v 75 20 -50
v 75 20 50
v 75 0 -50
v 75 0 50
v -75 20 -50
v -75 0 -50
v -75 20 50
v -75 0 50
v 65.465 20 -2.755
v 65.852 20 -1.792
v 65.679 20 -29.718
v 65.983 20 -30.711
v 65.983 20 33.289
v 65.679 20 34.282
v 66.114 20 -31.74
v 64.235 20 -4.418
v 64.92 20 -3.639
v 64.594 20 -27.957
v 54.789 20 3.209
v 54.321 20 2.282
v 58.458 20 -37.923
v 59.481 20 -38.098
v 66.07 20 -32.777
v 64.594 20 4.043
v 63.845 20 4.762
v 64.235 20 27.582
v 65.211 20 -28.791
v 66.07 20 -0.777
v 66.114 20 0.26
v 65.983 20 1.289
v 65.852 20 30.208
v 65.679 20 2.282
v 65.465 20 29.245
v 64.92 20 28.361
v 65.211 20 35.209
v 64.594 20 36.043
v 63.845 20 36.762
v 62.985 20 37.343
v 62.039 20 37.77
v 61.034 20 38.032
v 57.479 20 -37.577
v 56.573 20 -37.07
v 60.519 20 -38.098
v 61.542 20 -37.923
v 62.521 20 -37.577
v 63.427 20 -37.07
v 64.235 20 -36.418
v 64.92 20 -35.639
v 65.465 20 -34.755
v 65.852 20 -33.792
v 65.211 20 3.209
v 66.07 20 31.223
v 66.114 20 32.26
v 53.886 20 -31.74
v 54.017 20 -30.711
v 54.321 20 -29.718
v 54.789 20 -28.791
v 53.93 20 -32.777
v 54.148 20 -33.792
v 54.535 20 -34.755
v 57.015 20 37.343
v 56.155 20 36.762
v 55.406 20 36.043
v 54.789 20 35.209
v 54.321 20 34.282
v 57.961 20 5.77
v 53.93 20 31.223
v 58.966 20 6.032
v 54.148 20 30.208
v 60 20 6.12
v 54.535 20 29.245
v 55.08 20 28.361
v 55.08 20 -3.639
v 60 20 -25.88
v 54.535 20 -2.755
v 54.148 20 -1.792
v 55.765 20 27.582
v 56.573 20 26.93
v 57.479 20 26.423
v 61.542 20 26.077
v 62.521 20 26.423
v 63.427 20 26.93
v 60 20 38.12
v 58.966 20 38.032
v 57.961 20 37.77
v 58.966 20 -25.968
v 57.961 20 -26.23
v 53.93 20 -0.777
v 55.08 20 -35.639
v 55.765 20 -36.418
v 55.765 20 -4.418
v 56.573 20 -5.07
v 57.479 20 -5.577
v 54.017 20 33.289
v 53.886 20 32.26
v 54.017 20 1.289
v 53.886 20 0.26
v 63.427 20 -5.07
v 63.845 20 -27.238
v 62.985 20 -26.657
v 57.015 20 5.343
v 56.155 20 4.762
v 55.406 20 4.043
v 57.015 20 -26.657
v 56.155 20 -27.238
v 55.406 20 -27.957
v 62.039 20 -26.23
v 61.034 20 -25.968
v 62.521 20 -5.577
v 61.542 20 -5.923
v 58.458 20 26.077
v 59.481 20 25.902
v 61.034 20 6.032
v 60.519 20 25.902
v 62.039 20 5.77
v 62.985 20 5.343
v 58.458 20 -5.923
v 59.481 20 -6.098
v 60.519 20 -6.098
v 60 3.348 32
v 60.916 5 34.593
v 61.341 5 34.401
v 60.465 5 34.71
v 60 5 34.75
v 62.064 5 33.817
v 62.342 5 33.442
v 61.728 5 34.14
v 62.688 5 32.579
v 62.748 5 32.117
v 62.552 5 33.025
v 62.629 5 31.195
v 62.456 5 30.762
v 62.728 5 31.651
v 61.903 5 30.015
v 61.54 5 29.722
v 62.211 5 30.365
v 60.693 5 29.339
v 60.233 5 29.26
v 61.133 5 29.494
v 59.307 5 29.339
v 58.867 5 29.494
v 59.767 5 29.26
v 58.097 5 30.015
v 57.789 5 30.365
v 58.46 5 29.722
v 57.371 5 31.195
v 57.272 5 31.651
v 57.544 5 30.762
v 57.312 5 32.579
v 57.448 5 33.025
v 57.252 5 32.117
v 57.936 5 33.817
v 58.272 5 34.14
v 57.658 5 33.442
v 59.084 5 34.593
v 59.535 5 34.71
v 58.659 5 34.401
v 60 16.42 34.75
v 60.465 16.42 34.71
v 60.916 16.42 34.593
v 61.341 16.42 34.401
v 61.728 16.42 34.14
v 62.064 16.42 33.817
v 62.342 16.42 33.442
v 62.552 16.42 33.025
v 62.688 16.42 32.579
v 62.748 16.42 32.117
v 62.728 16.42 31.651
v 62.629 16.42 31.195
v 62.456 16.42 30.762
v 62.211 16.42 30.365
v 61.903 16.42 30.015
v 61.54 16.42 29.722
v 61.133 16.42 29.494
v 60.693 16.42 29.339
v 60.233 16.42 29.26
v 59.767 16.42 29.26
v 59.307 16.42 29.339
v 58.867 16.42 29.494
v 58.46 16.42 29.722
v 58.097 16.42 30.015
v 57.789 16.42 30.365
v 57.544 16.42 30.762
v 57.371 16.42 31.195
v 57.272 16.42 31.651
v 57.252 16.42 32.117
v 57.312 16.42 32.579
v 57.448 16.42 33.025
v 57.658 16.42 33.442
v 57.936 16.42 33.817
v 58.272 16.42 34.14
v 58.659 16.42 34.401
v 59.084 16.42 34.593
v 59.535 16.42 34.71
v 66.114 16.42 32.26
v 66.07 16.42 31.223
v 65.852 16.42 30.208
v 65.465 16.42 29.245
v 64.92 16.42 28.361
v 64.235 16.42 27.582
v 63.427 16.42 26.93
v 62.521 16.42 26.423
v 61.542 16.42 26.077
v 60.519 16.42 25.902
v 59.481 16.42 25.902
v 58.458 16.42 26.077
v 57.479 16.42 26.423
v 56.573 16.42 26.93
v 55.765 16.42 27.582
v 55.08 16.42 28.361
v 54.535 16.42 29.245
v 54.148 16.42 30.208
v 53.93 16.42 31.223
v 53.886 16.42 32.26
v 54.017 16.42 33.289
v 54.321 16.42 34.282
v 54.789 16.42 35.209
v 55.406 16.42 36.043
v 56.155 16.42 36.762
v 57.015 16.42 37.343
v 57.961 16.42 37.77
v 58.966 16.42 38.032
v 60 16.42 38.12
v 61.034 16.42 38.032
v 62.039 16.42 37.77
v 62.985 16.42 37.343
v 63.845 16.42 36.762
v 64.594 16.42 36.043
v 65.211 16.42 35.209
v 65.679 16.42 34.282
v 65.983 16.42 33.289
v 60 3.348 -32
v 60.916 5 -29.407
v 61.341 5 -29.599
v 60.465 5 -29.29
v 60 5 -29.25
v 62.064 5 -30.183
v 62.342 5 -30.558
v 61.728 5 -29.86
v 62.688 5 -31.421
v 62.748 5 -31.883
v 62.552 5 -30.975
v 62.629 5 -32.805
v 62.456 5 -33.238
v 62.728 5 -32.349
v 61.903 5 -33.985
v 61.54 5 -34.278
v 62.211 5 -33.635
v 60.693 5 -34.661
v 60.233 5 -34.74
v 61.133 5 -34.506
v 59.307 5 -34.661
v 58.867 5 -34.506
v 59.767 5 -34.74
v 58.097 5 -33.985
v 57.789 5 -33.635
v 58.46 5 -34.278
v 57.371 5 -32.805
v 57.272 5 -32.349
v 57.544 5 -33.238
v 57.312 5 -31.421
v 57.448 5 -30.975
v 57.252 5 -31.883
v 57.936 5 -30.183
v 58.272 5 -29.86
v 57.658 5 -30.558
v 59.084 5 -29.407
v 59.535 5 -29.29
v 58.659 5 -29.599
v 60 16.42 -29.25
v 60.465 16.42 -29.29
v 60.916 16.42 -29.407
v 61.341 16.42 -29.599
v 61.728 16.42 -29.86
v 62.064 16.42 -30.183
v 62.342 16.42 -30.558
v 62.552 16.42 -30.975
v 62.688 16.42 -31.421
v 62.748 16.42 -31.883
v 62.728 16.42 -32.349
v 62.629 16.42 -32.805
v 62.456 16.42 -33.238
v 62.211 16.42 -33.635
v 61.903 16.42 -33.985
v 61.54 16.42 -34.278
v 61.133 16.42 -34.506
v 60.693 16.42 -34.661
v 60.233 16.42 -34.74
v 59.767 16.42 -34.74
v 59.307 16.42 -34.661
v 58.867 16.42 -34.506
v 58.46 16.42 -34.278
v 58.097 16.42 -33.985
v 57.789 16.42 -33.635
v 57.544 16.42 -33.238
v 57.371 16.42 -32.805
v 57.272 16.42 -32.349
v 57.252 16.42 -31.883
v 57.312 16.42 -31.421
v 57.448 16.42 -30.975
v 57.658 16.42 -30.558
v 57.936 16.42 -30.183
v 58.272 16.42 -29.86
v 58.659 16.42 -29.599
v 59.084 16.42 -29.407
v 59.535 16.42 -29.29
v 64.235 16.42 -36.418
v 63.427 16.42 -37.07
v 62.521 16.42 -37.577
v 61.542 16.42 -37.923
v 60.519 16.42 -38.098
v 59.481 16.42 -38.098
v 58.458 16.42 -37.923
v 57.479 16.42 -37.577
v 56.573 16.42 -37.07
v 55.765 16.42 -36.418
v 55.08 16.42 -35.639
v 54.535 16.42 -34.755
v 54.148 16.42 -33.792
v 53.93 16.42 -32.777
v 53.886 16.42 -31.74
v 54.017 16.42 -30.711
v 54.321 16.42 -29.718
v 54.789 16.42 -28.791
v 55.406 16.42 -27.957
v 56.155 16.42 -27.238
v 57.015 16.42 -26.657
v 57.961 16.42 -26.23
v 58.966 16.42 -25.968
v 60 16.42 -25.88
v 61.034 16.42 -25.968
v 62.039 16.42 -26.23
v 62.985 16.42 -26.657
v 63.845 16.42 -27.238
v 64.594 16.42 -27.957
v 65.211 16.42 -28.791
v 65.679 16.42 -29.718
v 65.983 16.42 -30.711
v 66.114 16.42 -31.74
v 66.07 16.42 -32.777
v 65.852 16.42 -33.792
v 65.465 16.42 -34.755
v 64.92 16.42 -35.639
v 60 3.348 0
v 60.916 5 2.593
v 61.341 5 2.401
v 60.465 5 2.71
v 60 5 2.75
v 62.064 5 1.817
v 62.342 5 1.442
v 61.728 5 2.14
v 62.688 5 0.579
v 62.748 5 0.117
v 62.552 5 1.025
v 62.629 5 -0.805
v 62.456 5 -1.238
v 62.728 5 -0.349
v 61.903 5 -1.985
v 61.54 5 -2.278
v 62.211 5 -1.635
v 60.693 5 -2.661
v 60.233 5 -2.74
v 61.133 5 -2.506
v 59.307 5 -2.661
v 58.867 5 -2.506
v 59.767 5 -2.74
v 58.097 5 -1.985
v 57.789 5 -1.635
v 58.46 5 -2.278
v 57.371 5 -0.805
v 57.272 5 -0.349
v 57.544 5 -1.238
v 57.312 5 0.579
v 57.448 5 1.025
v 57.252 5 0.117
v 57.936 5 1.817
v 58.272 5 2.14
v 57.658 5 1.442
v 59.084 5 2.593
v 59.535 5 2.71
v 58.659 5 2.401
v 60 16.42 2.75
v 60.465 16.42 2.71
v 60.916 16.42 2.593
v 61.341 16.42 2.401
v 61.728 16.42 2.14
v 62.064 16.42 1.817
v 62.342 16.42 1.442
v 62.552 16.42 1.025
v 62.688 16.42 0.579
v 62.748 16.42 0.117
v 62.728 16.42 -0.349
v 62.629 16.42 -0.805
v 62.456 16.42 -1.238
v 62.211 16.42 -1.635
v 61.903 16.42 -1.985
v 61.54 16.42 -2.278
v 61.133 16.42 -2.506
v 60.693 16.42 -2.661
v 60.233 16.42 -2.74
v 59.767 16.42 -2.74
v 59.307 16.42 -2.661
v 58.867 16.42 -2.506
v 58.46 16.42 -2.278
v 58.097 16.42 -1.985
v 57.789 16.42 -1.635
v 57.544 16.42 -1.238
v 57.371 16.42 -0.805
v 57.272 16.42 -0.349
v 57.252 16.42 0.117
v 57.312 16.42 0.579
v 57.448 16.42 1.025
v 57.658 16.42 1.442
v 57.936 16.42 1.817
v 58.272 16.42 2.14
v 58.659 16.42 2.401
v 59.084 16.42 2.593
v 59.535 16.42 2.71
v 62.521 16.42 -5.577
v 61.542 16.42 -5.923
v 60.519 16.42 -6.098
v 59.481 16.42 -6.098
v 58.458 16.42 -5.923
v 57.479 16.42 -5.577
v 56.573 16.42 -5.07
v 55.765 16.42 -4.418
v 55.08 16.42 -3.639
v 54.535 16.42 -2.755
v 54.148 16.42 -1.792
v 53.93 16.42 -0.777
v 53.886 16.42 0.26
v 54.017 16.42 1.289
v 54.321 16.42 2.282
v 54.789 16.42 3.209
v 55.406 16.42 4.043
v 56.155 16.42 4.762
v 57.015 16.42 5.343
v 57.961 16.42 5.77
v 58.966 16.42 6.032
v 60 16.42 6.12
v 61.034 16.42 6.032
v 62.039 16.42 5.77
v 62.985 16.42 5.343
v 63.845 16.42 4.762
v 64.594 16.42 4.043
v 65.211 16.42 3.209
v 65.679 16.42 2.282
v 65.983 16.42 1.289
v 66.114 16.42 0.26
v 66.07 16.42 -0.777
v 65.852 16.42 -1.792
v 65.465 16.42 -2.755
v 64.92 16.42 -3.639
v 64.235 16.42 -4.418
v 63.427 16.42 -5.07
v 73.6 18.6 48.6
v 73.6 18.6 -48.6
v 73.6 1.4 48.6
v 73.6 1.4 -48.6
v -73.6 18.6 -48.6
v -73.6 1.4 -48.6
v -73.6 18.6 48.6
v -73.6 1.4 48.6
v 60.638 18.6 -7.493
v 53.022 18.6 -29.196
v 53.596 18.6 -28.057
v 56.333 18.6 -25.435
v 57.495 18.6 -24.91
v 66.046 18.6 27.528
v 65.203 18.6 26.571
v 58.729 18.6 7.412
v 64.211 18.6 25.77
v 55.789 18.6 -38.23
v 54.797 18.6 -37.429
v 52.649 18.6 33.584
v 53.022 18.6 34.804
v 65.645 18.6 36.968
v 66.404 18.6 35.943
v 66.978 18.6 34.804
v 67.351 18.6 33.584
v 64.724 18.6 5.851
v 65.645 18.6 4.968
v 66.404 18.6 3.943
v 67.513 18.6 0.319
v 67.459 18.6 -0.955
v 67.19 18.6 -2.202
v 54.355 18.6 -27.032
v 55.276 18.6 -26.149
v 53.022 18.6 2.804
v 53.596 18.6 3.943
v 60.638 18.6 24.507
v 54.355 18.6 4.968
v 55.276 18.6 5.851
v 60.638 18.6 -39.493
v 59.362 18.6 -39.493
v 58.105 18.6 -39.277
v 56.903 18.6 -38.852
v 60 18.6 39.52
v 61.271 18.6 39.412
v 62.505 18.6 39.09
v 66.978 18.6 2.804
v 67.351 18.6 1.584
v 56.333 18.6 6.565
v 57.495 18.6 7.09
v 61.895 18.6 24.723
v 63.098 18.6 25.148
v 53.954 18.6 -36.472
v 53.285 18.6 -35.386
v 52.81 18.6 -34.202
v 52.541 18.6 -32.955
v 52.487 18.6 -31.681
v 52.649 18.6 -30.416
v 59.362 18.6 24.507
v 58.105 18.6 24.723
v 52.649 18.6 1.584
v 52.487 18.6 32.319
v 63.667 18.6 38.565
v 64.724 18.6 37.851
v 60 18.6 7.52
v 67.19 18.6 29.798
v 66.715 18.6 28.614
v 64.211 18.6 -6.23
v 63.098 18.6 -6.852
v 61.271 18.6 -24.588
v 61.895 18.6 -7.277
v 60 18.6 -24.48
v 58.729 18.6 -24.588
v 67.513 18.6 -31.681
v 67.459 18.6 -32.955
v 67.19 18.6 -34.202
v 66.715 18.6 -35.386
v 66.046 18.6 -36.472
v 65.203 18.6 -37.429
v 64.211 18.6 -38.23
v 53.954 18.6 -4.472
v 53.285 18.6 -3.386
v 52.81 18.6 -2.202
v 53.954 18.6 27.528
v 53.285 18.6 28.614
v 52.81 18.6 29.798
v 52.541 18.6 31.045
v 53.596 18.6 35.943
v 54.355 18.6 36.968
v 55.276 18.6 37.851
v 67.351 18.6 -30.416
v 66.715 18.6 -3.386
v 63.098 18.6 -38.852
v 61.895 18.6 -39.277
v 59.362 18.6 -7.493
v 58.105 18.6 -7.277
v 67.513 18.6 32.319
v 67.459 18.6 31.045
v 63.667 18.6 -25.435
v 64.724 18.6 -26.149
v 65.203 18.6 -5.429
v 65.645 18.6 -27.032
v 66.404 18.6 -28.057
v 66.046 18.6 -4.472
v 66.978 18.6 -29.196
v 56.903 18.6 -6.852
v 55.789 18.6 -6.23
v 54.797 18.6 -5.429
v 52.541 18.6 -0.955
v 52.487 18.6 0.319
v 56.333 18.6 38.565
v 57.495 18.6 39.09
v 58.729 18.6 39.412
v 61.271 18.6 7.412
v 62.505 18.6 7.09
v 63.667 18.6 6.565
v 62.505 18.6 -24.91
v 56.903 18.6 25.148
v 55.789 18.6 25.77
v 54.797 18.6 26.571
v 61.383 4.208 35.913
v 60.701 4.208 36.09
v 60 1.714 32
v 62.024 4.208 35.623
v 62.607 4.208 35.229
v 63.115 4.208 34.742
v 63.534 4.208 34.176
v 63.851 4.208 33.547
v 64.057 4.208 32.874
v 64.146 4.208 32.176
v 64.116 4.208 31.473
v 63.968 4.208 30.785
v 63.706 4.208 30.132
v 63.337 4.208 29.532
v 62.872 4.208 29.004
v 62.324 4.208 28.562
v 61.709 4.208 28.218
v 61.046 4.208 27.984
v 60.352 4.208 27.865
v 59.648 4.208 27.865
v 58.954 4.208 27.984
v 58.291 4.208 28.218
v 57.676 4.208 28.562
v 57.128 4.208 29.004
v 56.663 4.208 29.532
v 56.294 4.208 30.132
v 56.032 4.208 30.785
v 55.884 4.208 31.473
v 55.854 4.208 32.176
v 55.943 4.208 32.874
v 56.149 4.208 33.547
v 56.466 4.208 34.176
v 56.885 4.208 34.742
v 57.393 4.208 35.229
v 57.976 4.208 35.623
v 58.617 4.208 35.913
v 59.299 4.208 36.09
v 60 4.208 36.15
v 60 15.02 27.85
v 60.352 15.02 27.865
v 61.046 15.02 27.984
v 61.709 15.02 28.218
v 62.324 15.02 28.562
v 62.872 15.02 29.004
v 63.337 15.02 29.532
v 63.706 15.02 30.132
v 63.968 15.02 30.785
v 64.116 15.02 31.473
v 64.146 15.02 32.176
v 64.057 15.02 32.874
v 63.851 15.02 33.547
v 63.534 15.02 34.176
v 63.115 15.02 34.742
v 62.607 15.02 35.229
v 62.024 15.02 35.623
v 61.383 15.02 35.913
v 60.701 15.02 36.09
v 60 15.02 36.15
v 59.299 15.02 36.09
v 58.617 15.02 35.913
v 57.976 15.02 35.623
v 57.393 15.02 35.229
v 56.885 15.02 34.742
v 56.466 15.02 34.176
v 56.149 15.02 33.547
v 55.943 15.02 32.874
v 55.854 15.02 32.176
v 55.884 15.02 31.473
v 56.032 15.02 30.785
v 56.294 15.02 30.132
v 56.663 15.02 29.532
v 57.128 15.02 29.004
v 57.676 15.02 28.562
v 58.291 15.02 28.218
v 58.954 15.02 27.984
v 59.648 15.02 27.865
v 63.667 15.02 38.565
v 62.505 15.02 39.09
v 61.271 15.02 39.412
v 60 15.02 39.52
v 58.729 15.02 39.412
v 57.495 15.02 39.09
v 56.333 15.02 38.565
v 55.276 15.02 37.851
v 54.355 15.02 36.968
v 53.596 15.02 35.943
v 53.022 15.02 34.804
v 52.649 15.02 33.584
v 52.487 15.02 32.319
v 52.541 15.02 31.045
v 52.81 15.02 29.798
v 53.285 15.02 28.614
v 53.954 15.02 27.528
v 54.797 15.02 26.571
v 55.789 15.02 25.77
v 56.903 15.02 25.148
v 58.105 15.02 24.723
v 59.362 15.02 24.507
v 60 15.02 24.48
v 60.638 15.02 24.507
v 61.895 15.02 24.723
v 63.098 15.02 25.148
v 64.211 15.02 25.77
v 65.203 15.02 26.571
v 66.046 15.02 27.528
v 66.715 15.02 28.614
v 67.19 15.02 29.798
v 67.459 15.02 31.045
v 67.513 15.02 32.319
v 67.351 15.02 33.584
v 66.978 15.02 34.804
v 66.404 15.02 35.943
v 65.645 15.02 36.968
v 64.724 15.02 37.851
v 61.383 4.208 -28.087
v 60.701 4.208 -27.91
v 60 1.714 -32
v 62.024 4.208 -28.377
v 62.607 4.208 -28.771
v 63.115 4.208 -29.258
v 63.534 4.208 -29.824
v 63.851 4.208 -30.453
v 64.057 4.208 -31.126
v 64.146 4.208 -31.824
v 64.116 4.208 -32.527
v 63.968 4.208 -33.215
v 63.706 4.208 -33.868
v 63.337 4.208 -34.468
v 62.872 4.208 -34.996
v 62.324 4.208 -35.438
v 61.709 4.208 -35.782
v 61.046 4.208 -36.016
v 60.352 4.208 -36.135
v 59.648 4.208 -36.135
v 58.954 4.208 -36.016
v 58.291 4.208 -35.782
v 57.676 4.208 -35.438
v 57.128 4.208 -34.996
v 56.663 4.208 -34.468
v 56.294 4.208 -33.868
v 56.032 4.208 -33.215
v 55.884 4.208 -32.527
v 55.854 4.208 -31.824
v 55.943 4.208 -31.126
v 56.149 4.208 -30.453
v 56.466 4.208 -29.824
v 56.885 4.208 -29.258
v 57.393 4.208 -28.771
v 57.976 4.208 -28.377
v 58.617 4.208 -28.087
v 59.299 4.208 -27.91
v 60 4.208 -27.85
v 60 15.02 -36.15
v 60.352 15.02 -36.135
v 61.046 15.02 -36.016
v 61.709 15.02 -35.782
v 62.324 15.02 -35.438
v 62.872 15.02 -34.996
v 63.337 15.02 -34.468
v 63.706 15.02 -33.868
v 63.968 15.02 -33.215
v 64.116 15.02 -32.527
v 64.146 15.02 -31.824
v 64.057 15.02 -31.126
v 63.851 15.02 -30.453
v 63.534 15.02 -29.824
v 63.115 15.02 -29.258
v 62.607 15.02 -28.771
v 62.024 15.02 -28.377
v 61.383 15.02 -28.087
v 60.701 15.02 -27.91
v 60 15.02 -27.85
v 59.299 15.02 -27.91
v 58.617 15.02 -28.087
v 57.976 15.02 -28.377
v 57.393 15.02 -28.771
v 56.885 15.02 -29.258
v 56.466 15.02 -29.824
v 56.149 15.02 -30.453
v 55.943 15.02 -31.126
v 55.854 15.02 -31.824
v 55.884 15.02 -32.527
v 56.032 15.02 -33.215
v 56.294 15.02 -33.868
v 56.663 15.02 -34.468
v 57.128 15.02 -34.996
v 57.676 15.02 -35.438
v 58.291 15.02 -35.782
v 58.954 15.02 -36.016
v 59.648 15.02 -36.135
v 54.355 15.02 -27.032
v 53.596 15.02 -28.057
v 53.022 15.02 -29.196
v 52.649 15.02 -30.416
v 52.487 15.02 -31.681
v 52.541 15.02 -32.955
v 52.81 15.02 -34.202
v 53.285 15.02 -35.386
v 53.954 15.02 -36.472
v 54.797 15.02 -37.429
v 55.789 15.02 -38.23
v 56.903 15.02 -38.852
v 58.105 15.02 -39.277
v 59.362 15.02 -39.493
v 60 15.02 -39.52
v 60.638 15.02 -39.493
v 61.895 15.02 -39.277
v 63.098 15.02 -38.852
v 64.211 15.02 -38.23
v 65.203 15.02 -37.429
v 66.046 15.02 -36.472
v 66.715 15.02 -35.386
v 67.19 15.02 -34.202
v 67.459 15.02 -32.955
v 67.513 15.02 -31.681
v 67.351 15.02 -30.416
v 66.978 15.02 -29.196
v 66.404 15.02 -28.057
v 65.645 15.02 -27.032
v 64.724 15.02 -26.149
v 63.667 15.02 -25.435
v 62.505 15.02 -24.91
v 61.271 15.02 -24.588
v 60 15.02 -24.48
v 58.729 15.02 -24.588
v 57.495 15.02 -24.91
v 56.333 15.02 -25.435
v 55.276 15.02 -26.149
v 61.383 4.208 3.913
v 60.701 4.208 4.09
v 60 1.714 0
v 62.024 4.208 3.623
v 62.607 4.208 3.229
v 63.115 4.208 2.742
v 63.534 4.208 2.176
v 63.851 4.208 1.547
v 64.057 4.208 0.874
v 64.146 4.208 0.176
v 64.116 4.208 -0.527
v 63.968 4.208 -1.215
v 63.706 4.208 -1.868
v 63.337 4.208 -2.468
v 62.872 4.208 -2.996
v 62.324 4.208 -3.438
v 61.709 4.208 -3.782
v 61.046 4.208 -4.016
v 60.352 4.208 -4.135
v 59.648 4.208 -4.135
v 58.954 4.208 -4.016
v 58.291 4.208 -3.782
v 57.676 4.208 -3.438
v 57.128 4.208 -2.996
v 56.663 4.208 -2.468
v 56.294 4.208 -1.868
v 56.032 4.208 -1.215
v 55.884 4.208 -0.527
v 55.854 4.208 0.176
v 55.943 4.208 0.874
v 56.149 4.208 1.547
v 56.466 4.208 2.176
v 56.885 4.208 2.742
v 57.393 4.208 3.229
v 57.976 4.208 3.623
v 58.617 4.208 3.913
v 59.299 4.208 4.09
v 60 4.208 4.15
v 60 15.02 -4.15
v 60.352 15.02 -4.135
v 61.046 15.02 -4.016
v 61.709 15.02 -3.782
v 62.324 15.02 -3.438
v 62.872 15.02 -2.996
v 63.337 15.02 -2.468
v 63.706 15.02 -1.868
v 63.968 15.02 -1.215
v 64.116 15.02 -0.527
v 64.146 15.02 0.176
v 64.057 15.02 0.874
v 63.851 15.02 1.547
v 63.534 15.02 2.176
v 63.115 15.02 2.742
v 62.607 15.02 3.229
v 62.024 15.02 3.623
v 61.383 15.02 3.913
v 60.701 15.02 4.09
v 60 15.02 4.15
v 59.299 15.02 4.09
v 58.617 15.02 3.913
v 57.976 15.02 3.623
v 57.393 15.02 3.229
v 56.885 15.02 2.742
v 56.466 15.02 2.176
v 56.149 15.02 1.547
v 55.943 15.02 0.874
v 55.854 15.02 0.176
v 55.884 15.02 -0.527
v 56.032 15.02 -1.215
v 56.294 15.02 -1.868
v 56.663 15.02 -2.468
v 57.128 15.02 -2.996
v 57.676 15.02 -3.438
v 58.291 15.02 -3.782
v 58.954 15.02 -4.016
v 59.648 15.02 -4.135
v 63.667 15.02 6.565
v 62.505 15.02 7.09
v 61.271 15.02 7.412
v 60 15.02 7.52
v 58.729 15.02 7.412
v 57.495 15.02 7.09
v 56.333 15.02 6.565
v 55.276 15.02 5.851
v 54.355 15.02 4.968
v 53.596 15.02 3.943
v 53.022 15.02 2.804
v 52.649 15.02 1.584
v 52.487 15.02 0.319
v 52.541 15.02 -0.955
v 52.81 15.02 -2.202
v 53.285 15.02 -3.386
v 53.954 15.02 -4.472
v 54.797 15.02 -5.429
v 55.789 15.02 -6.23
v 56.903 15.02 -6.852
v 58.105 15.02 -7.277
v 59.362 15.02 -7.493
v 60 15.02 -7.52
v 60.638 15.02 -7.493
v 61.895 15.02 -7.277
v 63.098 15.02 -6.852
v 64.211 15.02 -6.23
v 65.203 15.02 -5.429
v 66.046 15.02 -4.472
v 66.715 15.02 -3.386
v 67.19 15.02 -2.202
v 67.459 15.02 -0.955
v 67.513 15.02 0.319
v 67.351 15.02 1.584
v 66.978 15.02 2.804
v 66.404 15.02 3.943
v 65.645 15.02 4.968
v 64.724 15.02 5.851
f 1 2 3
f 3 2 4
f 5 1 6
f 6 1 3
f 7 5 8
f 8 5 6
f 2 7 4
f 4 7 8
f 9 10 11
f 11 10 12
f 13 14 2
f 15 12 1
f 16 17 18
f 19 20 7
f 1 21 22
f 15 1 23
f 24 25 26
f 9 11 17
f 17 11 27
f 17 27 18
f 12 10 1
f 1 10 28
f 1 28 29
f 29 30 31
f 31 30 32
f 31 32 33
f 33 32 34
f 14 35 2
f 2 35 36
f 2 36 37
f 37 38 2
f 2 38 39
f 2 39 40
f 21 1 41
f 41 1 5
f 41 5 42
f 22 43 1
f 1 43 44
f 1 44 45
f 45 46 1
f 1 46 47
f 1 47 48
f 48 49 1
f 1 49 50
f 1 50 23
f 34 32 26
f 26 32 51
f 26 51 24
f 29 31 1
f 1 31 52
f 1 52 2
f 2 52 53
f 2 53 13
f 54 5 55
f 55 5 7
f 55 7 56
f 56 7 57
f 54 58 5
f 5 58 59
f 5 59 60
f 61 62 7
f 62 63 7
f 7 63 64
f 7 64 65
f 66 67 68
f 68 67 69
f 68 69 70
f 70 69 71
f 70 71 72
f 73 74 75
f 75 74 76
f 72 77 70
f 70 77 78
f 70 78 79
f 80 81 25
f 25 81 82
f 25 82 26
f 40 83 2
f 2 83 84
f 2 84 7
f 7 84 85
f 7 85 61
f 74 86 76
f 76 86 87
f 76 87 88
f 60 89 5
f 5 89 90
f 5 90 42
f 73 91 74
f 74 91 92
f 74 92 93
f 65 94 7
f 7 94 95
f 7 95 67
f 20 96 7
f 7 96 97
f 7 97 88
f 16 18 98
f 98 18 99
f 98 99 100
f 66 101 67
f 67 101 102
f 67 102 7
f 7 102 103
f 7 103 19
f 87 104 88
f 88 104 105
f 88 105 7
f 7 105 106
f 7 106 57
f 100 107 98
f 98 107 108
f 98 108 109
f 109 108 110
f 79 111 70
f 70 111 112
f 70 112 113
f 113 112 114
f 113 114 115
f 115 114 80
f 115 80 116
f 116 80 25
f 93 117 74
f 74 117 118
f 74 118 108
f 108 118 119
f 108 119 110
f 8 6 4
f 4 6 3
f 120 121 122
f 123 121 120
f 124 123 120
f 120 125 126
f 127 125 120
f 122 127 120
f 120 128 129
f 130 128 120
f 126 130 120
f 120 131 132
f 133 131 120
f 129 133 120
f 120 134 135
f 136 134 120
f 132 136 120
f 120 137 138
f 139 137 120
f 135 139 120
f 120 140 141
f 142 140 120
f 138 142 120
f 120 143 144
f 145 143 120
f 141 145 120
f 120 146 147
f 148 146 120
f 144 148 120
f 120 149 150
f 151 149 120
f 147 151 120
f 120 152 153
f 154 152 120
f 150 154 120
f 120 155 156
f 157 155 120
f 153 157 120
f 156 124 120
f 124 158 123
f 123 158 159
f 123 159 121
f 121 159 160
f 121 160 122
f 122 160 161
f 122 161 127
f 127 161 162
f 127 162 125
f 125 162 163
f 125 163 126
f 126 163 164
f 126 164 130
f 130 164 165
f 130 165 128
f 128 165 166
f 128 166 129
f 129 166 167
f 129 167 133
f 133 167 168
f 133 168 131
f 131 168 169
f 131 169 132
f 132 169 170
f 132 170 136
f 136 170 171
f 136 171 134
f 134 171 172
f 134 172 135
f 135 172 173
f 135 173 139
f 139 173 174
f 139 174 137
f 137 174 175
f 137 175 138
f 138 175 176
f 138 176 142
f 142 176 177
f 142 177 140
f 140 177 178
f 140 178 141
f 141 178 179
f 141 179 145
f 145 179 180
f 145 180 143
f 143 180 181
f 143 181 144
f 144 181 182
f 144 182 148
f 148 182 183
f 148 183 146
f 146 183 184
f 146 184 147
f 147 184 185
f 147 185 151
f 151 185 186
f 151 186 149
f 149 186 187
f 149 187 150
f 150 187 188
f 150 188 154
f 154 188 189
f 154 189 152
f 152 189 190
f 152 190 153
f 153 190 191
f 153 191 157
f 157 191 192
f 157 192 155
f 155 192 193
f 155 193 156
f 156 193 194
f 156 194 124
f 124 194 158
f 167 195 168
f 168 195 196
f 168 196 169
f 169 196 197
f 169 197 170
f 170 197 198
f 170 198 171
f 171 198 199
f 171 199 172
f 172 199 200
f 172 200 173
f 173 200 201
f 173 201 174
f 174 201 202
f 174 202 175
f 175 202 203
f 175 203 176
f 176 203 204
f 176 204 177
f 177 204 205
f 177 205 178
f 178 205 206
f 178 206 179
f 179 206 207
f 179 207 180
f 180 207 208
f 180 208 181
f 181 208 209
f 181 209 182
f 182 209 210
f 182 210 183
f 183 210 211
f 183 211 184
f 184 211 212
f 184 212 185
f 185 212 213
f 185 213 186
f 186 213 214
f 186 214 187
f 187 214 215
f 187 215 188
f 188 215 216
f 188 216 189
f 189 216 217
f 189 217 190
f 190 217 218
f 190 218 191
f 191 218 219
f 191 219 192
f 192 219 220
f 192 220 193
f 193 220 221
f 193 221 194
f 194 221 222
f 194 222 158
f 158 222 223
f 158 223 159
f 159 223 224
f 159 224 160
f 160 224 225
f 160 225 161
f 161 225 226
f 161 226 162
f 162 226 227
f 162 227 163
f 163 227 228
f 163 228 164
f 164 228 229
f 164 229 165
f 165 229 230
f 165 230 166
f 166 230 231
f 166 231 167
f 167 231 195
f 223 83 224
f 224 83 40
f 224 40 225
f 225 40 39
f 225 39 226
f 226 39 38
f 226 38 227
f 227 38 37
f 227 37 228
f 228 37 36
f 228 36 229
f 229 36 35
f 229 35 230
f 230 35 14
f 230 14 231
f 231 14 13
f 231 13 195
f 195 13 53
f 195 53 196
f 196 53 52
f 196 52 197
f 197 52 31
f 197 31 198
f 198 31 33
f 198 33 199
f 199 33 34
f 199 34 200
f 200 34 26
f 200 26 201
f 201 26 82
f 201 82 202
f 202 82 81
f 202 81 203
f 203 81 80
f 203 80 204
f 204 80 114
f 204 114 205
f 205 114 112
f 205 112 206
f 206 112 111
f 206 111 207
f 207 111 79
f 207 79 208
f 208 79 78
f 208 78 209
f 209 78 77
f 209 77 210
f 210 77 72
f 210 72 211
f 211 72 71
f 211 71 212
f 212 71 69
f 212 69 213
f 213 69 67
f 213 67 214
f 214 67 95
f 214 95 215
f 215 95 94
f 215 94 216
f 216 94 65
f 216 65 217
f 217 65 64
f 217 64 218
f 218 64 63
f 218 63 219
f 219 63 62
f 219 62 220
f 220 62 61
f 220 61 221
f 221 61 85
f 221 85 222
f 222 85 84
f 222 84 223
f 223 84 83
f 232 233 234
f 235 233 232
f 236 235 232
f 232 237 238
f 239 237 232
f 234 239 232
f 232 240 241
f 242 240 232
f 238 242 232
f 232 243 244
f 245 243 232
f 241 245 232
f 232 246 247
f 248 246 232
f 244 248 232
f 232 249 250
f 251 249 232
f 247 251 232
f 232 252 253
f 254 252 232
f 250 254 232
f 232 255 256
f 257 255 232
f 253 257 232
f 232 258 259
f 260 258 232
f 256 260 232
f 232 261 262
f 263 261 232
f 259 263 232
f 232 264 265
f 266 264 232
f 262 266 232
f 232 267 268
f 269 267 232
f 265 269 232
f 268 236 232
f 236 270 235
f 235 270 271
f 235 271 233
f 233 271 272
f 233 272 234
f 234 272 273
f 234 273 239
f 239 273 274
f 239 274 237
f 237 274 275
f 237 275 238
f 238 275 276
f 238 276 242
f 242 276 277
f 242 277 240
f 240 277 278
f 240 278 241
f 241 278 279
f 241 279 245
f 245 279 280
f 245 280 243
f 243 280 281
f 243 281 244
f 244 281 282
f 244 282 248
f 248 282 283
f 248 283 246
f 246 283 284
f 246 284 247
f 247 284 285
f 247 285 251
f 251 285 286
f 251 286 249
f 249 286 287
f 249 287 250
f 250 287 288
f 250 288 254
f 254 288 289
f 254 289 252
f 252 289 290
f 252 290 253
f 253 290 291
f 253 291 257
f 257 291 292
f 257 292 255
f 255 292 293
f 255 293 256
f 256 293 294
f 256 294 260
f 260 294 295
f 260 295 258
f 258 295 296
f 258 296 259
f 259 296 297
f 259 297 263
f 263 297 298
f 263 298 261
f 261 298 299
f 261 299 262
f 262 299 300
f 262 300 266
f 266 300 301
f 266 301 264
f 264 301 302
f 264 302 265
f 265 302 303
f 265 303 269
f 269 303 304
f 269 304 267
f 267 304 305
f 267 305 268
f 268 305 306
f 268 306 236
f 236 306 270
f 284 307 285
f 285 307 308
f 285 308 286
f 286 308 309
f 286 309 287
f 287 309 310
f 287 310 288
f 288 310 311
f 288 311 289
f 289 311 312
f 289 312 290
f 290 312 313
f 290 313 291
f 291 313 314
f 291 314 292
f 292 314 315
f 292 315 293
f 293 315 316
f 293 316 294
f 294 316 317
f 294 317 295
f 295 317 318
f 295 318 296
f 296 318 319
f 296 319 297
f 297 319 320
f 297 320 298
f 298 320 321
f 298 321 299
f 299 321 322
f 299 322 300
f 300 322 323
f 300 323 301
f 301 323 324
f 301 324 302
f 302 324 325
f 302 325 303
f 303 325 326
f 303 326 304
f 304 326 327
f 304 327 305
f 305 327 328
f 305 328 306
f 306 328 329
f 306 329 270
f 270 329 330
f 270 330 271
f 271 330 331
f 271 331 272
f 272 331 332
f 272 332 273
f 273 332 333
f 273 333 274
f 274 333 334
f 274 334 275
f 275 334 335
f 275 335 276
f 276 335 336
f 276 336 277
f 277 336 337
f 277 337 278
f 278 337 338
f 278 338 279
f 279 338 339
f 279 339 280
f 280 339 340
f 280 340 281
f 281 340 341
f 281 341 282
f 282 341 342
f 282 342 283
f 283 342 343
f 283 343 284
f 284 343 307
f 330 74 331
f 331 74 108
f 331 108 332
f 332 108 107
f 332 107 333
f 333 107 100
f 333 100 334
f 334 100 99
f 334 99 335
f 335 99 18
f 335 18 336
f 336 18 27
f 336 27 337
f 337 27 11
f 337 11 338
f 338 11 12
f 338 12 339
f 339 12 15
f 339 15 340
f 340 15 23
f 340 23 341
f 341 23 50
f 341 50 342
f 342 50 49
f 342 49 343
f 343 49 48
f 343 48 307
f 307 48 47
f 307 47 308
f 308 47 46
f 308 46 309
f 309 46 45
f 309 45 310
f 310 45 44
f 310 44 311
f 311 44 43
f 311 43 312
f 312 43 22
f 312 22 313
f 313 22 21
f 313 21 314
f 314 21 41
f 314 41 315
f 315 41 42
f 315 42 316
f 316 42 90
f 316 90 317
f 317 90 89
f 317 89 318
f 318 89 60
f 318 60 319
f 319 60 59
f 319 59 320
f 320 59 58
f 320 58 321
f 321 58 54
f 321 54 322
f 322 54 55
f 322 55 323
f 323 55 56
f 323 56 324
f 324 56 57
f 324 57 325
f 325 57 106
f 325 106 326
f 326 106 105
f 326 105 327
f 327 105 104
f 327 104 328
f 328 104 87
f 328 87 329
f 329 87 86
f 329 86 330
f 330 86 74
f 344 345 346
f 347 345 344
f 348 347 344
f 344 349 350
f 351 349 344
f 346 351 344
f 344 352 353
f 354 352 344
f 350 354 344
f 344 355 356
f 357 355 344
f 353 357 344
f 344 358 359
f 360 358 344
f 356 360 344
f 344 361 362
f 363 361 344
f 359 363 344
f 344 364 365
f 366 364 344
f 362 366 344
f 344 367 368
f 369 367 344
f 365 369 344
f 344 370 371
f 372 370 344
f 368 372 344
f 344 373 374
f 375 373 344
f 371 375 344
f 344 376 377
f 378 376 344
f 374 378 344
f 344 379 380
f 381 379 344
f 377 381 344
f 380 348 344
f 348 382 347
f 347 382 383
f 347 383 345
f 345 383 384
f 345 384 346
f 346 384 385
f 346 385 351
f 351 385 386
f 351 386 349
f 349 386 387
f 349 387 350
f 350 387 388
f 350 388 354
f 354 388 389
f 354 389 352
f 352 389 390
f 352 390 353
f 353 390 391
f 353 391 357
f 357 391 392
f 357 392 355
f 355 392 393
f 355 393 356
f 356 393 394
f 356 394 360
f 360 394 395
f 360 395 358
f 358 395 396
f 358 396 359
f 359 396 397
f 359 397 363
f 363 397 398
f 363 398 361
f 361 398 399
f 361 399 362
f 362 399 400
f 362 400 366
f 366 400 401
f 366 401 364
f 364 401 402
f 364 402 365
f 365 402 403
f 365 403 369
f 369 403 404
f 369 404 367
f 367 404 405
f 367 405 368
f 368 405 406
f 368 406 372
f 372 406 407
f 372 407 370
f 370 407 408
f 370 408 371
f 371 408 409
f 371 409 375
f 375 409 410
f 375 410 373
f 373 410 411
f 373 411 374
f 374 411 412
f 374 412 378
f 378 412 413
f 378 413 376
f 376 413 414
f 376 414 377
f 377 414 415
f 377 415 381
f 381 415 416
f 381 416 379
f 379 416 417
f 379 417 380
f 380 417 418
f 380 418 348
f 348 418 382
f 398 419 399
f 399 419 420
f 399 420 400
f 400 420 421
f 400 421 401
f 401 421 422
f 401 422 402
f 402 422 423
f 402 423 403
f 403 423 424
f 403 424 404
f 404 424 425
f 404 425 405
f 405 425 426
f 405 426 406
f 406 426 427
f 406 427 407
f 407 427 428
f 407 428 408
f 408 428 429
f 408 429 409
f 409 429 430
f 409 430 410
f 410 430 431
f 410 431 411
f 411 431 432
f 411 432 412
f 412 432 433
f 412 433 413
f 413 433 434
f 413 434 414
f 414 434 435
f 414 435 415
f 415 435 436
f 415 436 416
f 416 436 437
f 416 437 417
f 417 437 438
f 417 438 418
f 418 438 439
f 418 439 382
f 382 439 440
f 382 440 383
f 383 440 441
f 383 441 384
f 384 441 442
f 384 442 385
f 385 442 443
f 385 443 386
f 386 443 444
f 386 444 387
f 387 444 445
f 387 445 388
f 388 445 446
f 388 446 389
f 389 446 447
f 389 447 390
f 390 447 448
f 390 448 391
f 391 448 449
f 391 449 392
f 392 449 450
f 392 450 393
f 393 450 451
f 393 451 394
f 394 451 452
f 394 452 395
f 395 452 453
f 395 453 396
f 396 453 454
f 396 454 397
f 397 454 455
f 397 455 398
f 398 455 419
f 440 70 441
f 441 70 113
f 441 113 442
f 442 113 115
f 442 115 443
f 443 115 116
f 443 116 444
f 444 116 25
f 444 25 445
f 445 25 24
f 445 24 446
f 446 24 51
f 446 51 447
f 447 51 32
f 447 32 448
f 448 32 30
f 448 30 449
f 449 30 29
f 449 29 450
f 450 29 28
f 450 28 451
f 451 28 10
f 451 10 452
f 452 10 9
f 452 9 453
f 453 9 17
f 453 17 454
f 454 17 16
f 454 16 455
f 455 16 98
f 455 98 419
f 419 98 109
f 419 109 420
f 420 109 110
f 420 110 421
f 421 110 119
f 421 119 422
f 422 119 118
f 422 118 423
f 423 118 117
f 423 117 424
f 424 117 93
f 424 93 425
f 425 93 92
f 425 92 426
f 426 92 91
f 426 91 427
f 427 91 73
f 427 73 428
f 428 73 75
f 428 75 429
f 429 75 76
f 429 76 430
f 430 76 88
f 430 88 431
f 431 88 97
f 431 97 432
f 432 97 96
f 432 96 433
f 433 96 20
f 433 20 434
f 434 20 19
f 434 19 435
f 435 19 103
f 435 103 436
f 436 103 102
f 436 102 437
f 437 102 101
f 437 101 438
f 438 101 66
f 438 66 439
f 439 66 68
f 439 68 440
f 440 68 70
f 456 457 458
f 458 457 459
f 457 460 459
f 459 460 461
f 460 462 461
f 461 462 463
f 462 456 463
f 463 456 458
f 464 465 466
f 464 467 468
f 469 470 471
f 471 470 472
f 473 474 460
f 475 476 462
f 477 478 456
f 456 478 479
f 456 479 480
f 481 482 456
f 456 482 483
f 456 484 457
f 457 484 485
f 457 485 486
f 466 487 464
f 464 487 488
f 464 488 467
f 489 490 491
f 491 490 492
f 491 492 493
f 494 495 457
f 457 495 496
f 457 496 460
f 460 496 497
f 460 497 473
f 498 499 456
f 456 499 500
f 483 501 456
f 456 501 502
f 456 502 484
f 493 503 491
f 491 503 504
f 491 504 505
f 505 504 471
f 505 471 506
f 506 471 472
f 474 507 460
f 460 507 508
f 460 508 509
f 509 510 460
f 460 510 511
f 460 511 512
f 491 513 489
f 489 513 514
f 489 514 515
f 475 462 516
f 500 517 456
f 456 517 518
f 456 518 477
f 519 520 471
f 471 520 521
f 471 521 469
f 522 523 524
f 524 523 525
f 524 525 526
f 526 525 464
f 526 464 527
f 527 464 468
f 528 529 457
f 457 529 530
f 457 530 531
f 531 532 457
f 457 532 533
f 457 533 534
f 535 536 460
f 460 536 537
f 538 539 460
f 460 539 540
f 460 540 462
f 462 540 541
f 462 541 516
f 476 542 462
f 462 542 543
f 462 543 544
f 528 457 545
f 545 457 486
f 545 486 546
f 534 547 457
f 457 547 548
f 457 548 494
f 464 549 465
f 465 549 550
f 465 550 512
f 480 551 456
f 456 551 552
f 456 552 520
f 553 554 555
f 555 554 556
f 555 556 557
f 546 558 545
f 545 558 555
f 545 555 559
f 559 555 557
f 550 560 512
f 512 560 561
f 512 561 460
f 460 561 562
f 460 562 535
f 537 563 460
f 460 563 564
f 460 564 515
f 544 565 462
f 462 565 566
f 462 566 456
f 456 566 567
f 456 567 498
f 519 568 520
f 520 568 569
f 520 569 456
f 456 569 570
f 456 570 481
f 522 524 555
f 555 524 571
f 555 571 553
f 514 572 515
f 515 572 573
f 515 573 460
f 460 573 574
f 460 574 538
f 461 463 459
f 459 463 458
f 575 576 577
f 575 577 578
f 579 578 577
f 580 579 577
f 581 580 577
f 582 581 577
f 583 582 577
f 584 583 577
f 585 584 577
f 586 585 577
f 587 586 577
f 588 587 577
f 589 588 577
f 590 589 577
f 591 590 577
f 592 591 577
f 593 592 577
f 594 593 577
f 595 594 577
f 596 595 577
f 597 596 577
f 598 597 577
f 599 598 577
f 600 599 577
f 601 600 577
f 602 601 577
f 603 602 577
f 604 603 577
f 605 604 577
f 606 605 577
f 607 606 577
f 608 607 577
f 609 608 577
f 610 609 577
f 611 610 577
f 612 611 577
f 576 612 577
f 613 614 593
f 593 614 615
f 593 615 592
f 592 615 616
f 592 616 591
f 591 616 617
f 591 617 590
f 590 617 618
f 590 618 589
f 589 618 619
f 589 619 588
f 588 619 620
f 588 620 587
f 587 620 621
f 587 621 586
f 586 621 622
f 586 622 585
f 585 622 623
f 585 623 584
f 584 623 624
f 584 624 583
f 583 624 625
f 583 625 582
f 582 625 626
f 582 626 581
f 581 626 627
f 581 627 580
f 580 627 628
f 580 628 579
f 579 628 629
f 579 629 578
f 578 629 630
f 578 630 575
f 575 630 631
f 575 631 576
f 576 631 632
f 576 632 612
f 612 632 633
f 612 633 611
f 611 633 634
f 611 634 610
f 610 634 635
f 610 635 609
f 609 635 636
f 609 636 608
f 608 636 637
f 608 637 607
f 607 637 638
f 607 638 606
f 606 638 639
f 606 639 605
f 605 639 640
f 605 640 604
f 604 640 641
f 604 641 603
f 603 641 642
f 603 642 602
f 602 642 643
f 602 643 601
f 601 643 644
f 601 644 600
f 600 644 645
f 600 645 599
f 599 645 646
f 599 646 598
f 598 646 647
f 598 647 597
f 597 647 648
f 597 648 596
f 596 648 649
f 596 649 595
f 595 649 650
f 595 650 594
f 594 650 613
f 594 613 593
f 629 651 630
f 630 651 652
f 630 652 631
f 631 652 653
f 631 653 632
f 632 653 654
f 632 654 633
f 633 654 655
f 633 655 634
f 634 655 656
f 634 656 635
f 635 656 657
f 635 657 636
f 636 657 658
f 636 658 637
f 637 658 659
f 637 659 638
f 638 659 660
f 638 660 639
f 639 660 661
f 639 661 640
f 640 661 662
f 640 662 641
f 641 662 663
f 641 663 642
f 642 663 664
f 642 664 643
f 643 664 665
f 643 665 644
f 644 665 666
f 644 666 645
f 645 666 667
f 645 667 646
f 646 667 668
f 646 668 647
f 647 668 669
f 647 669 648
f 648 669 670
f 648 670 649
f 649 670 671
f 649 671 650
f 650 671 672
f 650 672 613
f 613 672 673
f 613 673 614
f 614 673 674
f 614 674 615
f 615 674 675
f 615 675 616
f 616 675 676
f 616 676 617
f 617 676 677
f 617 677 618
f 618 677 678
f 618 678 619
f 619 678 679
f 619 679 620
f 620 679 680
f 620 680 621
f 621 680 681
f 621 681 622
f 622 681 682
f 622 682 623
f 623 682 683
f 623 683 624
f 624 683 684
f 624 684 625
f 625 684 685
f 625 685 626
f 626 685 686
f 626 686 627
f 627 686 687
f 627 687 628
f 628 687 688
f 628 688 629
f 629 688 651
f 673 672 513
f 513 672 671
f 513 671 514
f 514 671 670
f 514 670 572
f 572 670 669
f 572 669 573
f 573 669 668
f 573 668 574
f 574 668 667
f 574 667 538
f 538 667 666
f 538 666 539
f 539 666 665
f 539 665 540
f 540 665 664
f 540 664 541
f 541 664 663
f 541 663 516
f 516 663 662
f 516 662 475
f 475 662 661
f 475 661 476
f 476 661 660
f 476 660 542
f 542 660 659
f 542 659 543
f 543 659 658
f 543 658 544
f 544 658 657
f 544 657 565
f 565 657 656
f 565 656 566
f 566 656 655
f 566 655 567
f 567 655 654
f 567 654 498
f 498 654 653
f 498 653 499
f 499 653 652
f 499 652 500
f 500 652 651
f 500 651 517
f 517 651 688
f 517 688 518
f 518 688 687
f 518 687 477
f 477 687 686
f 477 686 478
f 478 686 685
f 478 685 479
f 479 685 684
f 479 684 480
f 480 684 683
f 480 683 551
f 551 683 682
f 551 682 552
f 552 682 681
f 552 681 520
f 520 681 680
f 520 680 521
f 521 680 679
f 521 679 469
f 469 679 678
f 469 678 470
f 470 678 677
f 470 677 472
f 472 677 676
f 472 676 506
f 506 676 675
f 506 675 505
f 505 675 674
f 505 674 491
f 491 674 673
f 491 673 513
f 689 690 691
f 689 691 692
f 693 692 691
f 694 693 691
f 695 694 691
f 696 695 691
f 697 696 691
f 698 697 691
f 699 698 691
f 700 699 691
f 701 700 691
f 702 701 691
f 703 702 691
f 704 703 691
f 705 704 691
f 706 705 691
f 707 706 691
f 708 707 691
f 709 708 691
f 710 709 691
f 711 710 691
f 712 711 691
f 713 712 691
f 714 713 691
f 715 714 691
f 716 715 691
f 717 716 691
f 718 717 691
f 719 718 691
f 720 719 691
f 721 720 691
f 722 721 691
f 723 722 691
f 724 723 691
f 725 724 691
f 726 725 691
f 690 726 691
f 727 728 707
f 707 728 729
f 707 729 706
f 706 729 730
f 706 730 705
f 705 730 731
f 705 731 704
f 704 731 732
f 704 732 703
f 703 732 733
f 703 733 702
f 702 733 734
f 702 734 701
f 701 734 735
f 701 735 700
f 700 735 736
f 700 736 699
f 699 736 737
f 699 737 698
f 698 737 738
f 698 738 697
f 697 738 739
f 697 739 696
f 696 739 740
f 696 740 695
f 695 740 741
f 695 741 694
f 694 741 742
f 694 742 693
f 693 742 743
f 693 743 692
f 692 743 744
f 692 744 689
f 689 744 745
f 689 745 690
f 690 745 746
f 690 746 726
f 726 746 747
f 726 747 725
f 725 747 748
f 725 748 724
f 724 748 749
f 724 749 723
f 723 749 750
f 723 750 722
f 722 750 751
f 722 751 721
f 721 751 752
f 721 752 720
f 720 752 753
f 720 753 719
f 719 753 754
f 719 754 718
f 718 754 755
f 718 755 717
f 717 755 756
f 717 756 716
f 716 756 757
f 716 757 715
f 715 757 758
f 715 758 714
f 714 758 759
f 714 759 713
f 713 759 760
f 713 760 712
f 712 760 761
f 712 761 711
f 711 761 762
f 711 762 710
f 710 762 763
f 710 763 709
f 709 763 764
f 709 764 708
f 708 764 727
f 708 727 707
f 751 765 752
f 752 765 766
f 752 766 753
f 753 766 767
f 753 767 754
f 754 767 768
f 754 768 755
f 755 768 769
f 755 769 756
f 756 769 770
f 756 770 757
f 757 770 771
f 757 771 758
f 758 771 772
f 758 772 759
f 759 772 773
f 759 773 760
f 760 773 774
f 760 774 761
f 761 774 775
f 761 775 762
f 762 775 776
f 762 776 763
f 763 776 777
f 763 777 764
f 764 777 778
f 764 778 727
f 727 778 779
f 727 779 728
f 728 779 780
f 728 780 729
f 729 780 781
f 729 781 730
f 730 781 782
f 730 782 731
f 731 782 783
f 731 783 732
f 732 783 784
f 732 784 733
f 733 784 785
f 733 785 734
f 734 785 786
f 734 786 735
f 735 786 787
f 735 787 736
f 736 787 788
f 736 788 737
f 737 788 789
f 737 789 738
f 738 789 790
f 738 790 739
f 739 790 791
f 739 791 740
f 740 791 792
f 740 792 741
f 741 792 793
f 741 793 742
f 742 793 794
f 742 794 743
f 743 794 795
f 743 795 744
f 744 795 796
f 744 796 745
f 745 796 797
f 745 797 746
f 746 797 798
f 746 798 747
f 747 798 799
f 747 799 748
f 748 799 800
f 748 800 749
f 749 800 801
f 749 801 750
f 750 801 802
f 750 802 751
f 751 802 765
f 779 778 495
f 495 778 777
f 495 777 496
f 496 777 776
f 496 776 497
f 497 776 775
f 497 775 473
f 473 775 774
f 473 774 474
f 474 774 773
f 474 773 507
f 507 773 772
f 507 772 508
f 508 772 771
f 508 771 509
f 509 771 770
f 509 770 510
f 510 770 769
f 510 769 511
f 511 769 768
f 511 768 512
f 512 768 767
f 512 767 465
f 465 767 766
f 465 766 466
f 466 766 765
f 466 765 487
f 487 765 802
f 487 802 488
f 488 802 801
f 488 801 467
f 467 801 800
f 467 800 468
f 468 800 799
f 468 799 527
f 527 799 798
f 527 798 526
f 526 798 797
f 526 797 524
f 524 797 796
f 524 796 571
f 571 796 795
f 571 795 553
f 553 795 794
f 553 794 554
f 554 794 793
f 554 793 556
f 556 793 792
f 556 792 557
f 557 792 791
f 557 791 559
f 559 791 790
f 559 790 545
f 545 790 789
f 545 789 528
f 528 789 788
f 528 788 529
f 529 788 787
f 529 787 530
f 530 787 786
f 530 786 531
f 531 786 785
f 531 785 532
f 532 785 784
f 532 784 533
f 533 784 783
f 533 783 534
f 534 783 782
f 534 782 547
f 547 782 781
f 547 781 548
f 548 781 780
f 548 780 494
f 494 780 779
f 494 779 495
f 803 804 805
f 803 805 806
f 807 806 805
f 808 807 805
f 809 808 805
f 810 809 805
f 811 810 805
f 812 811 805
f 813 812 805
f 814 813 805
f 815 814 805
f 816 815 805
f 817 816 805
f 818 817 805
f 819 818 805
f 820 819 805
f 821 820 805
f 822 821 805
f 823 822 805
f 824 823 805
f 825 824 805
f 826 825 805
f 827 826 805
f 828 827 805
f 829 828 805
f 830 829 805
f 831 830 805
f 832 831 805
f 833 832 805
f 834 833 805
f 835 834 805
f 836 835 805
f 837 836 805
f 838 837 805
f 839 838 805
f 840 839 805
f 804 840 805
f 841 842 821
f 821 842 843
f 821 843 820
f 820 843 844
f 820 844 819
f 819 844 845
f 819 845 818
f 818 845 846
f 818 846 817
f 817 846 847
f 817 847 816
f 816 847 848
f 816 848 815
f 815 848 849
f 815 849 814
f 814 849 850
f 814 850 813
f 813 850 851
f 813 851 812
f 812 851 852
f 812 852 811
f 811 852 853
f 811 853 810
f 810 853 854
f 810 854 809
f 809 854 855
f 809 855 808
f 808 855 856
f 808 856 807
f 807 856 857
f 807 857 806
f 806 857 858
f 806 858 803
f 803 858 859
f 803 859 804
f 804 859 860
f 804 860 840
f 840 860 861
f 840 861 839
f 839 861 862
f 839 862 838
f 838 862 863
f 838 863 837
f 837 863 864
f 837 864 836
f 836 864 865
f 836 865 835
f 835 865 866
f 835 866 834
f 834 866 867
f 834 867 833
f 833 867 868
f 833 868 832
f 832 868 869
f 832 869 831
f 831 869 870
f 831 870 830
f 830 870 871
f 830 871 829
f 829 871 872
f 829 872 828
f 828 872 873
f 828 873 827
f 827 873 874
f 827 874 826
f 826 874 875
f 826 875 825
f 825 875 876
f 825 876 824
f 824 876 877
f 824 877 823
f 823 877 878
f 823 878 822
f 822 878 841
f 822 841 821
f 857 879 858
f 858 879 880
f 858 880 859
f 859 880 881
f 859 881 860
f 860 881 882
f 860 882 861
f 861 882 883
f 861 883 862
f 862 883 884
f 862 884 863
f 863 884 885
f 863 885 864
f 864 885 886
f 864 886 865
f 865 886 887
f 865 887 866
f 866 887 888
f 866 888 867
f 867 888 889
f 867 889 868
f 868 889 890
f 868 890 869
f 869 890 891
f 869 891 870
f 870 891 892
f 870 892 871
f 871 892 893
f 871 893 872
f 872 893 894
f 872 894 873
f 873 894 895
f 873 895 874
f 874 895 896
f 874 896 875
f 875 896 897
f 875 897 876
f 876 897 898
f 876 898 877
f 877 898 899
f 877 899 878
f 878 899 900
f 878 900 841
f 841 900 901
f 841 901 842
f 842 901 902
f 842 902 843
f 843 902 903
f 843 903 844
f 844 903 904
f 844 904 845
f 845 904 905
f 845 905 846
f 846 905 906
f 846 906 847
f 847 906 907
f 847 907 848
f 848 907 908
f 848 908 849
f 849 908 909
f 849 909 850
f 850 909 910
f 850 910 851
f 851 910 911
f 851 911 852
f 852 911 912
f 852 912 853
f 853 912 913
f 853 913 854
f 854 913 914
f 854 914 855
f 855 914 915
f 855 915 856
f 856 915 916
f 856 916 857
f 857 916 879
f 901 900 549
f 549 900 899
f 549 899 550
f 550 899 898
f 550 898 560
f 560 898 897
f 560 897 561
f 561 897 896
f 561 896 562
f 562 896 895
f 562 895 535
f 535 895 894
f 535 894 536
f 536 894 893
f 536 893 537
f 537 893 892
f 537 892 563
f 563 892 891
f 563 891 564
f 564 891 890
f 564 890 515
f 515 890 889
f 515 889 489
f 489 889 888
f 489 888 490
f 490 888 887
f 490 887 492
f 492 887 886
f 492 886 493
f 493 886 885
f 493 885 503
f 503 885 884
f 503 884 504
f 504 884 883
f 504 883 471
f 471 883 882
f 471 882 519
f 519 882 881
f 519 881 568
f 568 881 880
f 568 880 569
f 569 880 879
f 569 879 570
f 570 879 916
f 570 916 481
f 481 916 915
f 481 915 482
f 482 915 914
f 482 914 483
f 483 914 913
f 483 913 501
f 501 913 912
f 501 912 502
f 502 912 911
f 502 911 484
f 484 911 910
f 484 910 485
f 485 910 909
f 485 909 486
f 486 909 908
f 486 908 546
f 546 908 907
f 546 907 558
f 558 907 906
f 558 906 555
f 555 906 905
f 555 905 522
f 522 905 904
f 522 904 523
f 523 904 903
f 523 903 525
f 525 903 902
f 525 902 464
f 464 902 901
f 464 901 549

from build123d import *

# Parameters (mm, degrees)
SKETCH1_W                               = 150
SKETCH1_H                               = 100
BOSS_EXTRUDE1_DEPTH                     = 20
CBORE_FOR_M5_HEX_HEAD_BOLT1_D           = 5.5
CBORE_FOR_M5_HEX_HEAD_BOLT1_DEPTH       = 15
CBORE_FOR_M5_HEX_HEAD_BOLT1_CBORE_D     = 12.24
CBORE_FOR_M5_HEX_HEAD_BOLT1_CBORE_DEPTH = 3.58
CBORE_FOR_M5_HEX_HEAD_BOLT1_TIP         = 1.652366702
SHELL1_START                            = 1.4
SHELL1_OUTLINE_W                        = 147.2
SHELL1_OUTLINE_H                        = 97.2
SHELL1_OUTLINE_R                        = 7.52
SHELL1_DEPTH                            = 17.2
SHELL1_2_OUTLINE_R                      = 7.52
SHELL1_2_OUTLINE_R_2                    = 4.15
SHELL1_2_DEPTH                          = 13.62
SHELL1_3_OUTLINE_R                      = 4.15
SHELL1_3_DEPTH                          = 0.314346442


with BuildPart() as part:
    # Sketch1 → Boss-Extrude1 (new body)
    with BuildSketch(Plane(origin=(0, 0, 0), x_dir=(1, 0, 0), z_dir=(0, 1, 0))):
        Rectangle(SKETCH1_W, SKETCH1_H)
    extrude(amount=BOSS_EXTRUDE1_DEPTH)

    # CBORE for M5 Hex Head Bolt1
    with Locations(Plane(origin=(0, 20, 0), x_dir=(1, 0, 0), z_dir=(0, 1, 0))):
        with Locations((60, 0), (60, 32), (60, -32)):
            CounterBoreHole(CBORE_FOR_M5_HEX_HEAD_BOLT1_D / 2, CBORE_FOR_M5_HEX_HEAD_BOLT1_CBORE_D / 2, CBORE_FOR_M5_HEX_HEAD_BOLT1_CBORE_DEPTH, depth=CBORE_FOR_M5_HEX_HEAD_BOLT1_DEPTH)
            with Locations((0, 0, -(CBORE_FOR_M5_HEX_HEAD_BOLT1_DEPTH + CBORE_FOR_M5_HEX_HEAD_BOLT1_TIP / 2))):  # 118° drill point
                Cone(0, CBORE_FOR_M5_HEX_HEAD_BOLT1_D / 2, CBORE_FOR_M5_HEX_HEAD_BOLT1_TIP, mode=Mode.SUBTRACT)

    # Shell1: read off the stored shape, not the designer's step
    # Shell1 outline → Shell1 (cut)
    with BuildSketch(Plane(origin=(0, 0, 0), x_dir=(1, 0, 0), z_dir=(0, 1, 0)).offset(SHELL1_START)):
        Rectangle(SHELL1_OUTLINE_W, SHELL1_OUTLINE_H)
        with Locations((60, -32)):
            Circle(SHELL1_OUTLINE_R, mode=Mode.SUBTRACT)
        with Locations((60, 0)):
            Circle(SHELL1_OUTLINE_R, mode=Mode.SUBTRACT)
        with Locations((60, 32)):
            Circle(SHELL1_OUTLINE_R, mode=Mode.SUBTRACT)
    extrude(amount=SHELL1_DEPTH, mode=Mode.SUBTRACT)

    # Shell1 2 outline → Shell1 2 (cut)
    # profile 1 of 3: a face of its own
    with BuildSketch(Plane(origin=(0, 0, 0), x_dir=(1, 0, 0), z_dir=(0, 1, 0)).offset(SHELL1_START)):
        with Locations((60, -32)):
            Circle(SHELL1_2_OUTLINE_R)
        with Locations((60, -32)):
            Circle(SHELL1_2_OUTLINE_R_2, mode=Mode.SUBTRACT)
    # profile 2 of 3: a face of its own
    with BuildSketch(Plane(origin=(0, 0, 0), x_dir=(1, 0, 0), z_dir=(0, 1, 0)).offset(SHELL1_START)):
        with Locations((60, 32)):
            Circle(SHELL1_2_OUTLINE_R)
        with Locations((60, 32)):
            Circle(SHELL1_2_OUTLINE_R_2, mode=Mode.SUBTRACT)
    # profile 3 of 3: a face of its own
    with BuildSketch(Plane(origin=(0, 0, 0), x_dir=(1, 0, 0), z_dir=(0, 1, 0)).offset(SHELL1_START)):
        with Locations((60, 0)):
            Circle(SHELL1_2_OUTLINE_R)
        with Locations((60, 0)):
            Circle(SHELL1_2_OUTLINE_R_2, mode=Mode.SUBTRACT)
    extrude(amount=SHELL1_2_DEPTH, mode=Mode.SUBTRACT)

    # Shell1 3 outline → Shell1 3 (cut)
    with BuildSketch(Plane(origin=(0, 0, 0), x_dir=(1, 0, 0), z_dir=(0, 1, 0)).offset(SHELL1_START)):
        with Locations((60, -32)):
            Circle(SHELL1_3_OUTLINE_R)
        with Locations((60, 32)):
            Circle(SHELL1_3_OUTLINE_R)
        with Locations((60, 0)):
            Circle(SHELL1_3_OUTLINE_R)
    extrude(amount=SHELL1_3_DEPTH, mode=Mode.SUBTRACT)

    # Shell1 4 outline → Shell1 4 (revolve, cut)
    with BuildSketch(Plane(origin=(60, 0, 32), x_dir=(1, 0, 0), z_dir=(0, 0, 1))):
        Polygon((4.15, 4.207918111), (0, 1.714346542), (4.15, 1.714346442), align=None)
    revolve(axis=Axis((60, 0, 32), (0, 1, 0)), mode=Mode.SUBTRACT)

    # Shell1 5 outline → Shell1 5 (revolve, cut)
    with BuildSketch(Plane(origin=(60, 0, -32), x_dir=(1, 0, 0), z_dir=(0, 0, 1))):
        Polygon((4.15, 4.207918111), (0, 1.714346542), (4.15, 1.714346442), align=None)
    revolve(axis=Axis((60, 0, -32), (0, 1, 0)), mode=Mode.SUBTRACT)

    # Shell1 6 outline → Shell1 6 (revolve, cut)
    with BuildSketch(Plane(origin=(60, 0, 0), x_dir=(1, 0, 0), z_dir=(0, 0, 1))):
        Polygon((4.15, 4.207918111), (0, 1.714346542), (4.15, 1.714346442), align=None)
    revolve(axis=Axis((60, 0, 0), (0, 1, 0)), mode=Mode.SUBTRACT)


solid = part.part
